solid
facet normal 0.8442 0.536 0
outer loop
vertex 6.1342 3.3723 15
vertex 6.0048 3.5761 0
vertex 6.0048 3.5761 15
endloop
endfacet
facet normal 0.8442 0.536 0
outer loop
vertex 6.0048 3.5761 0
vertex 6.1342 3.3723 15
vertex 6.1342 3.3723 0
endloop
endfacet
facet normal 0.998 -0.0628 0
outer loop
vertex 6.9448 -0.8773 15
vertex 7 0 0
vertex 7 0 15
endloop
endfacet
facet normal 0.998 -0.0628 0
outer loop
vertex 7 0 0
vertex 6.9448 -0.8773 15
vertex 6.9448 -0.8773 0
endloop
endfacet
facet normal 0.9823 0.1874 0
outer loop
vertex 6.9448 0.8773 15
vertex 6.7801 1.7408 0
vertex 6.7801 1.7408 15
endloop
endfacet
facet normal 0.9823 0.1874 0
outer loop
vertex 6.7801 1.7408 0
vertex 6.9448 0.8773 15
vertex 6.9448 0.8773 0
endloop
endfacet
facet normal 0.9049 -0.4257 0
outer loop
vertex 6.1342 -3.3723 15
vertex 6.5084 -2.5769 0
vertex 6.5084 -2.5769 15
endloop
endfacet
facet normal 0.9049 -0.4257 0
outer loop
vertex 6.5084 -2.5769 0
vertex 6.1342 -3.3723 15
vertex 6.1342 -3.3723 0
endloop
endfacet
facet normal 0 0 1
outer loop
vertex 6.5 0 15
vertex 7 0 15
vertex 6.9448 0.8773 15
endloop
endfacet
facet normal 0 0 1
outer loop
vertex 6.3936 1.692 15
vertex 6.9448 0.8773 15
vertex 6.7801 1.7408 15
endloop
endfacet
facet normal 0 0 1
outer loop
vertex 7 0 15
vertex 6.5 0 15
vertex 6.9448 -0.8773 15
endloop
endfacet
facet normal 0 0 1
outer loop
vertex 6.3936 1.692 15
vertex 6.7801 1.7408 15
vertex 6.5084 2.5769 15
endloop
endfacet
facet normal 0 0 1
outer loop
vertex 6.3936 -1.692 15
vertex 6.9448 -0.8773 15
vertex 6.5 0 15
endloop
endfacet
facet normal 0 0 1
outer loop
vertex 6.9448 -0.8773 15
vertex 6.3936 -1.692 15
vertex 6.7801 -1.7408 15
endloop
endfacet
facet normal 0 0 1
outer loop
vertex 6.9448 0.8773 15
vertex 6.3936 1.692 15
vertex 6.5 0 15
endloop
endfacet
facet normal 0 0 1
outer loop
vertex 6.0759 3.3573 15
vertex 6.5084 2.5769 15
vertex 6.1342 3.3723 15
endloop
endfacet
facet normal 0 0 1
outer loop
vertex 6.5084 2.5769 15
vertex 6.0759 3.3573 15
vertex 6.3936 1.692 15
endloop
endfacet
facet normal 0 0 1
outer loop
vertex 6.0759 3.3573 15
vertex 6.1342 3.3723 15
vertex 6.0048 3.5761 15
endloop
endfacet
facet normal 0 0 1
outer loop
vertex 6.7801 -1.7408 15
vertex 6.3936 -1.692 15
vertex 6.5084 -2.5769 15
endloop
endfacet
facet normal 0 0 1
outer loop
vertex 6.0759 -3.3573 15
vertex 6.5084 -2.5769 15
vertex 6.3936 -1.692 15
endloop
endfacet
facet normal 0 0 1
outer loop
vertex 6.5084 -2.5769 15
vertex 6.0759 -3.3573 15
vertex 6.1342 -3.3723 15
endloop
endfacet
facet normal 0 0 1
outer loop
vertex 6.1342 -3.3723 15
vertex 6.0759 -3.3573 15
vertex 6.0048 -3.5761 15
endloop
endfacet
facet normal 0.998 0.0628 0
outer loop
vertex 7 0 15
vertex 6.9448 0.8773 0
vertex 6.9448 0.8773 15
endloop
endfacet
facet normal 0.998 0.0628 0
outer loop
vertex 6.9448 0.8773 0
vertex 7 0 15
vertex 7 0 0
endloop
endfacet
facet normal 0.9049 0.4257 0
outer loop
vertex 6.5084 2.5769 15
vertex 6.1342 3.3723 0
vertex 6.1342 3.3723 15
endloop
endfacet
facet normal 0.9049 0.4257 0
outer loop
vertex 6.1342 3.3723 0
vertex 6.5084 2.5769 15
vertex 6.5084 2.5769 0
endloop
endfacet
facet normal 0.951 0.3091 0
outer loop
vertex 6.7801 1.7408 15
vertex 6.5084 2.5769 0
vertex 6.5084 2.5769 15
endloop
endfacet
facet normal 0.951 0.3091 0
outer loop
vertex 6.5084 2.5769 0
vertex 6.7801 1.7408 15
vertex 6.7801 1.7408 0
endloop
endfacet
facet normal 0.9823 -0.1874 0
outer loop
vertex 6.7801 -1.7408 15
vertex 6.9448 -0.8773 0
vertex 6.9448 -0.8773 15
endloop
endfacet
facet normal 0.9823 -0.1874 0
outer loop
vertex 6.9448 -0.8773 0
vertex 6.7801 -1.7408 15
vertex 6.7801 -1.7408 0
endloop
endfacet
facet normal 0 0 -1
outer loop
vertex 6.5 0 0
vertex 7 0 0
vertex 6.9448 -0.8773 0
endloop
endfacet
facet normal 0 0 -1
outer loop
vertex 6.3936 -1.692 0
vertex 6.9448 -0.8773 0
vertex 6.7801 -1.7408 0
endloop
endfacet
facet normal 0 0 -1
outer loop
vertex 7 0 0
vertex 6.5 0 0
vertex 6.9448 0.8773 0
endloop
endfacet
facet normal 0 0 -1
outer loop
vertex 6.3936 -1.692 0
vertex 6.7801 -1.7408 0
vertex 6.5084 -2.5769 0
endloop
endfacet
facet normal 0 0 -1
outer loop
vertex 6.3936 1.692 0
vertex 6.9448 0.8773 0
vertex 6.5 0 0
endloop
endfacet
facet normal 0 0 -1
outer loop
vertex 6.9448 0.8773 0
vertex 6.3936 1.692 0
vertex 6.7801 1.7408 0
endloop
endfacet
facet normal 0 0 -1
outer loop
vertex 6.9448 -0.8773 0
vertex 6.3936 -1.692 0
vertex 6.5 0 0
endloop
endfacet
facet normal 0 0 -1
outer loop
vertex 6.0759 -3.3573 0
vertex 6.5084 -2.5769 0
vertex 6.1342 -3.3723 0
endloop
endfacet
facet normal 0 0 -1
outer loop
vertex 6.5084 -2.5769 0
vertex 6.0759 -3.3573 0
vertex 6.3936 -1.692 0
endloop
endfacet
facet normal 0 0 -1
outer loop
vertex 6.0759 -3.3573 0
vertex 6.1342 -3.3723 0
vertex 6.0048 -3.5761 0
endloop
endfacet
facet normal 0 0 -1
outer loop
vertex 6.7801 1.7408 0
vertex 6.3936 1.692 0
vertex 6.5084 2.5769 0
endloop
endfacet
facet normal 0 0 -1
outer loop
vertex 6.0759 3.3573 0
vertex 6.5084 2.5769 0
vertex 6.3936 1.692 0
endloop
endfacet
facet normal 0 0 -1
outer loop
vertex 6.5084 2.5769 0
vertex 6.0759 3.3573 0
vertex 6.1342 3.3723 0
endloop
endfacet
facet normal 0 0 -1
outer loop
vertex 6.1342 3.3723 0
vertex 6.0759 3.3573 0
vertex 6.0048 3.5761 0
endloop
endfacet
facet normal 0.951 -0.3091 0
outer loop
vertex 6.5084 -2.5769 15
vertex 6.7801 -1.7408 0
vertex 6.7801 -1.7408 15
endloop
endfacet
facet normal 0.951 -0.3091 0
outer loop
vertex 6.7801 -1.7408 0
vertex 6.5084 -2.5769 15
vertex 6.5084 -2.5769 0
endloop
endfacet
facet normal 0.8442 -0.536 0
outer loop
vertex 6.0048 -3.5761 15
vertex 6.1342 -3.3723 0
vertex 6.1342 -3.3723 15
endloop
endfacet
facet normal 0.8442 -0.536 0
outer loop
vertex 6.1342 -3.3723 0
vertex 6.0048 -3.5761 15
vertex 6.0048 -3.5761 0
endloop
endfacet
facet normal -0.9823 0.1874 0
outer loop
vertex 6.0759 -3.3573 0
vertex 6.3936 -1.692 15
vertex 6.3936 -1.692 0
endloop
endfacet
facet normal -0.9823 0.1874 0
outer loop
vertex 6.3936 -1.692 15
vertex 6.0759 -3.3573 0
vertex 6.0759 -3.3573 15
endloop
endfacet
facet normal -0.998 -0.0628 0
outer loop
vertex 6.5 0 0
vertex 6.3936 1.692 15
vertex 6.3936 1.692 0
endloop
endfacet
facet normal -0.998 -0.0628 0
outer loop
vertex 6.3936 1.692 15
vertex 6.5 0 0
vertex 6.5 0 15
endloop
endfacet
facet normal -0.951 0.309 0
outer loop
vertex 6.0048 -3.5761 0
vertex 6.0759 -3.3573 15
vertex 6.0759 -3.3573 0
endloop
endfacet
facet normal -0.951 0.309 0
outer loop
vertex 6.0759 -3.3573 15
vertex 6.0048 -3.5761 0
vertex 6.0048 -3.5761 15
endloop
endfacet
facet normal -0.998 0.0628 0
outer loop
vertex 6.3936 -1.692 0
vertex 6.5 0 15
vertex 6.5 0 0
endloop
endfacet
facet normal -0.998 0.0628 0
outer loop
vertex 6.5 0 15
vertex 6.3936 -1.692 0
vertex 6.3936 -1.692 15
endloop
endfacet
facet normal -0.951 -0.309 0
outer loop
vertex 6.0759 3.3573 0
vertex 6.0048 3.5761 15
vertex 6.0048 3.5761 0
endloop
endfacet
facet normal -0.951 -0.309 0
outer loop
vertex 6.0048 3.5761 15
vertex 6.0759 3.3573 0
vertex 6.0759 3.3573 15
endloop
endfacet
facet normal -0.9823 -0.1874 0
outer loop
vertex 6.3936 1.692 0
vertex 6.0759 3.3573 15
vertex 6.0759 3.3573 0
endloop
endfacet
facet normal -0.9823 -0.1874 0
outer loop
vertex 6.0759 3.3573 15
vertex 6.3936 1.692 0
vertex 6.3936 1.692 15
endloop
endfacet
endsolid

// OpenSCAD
$fn = 50;


difference() {
	union() {
		cylinder(h = 15, r = 7.0000000000);
		translate(v = [-10.0000000000, 0, 0]) {
			cylinder(h = 15, r = 7.0000000000);
		}
	}
	union() {
		cylinder(h = 15, r = 3.2500000000);
		cylinder(h = 15, r = 1.8000000000);
		cylinder(h = 15, r = 1.8000000000);
		cylinder(h = 15, r = 1.8000000000);
		translate(v = [-14.5000000000, 0, 0]) {
			hull() {
				translate(v = [-3.7500000000, 0.0000000000, 0]) {
					cylinder(h = 15, r = 7.5000000000);
				}
				translate(v = [3.7500000000, 0.0000000000, 0]) {
					cylinder(h = 15, r = 7.5000000000);
				}
				translate(v = [-3.7500000000, -0.0000000000, 0]) {
					cylinder(h = 15, r = 7.5000000000);
				}
				translate(v = [3.7500000000, -0.0000000000, 0]) {
					cylinder(h = 15, r = 7.5000000000);
				}
			}
		}
		translate(v = [-7.0000000000, 0, 0.0000000000]) {
			cylinder(h = 15, r = 13.5000000000);
		}
	}
}
